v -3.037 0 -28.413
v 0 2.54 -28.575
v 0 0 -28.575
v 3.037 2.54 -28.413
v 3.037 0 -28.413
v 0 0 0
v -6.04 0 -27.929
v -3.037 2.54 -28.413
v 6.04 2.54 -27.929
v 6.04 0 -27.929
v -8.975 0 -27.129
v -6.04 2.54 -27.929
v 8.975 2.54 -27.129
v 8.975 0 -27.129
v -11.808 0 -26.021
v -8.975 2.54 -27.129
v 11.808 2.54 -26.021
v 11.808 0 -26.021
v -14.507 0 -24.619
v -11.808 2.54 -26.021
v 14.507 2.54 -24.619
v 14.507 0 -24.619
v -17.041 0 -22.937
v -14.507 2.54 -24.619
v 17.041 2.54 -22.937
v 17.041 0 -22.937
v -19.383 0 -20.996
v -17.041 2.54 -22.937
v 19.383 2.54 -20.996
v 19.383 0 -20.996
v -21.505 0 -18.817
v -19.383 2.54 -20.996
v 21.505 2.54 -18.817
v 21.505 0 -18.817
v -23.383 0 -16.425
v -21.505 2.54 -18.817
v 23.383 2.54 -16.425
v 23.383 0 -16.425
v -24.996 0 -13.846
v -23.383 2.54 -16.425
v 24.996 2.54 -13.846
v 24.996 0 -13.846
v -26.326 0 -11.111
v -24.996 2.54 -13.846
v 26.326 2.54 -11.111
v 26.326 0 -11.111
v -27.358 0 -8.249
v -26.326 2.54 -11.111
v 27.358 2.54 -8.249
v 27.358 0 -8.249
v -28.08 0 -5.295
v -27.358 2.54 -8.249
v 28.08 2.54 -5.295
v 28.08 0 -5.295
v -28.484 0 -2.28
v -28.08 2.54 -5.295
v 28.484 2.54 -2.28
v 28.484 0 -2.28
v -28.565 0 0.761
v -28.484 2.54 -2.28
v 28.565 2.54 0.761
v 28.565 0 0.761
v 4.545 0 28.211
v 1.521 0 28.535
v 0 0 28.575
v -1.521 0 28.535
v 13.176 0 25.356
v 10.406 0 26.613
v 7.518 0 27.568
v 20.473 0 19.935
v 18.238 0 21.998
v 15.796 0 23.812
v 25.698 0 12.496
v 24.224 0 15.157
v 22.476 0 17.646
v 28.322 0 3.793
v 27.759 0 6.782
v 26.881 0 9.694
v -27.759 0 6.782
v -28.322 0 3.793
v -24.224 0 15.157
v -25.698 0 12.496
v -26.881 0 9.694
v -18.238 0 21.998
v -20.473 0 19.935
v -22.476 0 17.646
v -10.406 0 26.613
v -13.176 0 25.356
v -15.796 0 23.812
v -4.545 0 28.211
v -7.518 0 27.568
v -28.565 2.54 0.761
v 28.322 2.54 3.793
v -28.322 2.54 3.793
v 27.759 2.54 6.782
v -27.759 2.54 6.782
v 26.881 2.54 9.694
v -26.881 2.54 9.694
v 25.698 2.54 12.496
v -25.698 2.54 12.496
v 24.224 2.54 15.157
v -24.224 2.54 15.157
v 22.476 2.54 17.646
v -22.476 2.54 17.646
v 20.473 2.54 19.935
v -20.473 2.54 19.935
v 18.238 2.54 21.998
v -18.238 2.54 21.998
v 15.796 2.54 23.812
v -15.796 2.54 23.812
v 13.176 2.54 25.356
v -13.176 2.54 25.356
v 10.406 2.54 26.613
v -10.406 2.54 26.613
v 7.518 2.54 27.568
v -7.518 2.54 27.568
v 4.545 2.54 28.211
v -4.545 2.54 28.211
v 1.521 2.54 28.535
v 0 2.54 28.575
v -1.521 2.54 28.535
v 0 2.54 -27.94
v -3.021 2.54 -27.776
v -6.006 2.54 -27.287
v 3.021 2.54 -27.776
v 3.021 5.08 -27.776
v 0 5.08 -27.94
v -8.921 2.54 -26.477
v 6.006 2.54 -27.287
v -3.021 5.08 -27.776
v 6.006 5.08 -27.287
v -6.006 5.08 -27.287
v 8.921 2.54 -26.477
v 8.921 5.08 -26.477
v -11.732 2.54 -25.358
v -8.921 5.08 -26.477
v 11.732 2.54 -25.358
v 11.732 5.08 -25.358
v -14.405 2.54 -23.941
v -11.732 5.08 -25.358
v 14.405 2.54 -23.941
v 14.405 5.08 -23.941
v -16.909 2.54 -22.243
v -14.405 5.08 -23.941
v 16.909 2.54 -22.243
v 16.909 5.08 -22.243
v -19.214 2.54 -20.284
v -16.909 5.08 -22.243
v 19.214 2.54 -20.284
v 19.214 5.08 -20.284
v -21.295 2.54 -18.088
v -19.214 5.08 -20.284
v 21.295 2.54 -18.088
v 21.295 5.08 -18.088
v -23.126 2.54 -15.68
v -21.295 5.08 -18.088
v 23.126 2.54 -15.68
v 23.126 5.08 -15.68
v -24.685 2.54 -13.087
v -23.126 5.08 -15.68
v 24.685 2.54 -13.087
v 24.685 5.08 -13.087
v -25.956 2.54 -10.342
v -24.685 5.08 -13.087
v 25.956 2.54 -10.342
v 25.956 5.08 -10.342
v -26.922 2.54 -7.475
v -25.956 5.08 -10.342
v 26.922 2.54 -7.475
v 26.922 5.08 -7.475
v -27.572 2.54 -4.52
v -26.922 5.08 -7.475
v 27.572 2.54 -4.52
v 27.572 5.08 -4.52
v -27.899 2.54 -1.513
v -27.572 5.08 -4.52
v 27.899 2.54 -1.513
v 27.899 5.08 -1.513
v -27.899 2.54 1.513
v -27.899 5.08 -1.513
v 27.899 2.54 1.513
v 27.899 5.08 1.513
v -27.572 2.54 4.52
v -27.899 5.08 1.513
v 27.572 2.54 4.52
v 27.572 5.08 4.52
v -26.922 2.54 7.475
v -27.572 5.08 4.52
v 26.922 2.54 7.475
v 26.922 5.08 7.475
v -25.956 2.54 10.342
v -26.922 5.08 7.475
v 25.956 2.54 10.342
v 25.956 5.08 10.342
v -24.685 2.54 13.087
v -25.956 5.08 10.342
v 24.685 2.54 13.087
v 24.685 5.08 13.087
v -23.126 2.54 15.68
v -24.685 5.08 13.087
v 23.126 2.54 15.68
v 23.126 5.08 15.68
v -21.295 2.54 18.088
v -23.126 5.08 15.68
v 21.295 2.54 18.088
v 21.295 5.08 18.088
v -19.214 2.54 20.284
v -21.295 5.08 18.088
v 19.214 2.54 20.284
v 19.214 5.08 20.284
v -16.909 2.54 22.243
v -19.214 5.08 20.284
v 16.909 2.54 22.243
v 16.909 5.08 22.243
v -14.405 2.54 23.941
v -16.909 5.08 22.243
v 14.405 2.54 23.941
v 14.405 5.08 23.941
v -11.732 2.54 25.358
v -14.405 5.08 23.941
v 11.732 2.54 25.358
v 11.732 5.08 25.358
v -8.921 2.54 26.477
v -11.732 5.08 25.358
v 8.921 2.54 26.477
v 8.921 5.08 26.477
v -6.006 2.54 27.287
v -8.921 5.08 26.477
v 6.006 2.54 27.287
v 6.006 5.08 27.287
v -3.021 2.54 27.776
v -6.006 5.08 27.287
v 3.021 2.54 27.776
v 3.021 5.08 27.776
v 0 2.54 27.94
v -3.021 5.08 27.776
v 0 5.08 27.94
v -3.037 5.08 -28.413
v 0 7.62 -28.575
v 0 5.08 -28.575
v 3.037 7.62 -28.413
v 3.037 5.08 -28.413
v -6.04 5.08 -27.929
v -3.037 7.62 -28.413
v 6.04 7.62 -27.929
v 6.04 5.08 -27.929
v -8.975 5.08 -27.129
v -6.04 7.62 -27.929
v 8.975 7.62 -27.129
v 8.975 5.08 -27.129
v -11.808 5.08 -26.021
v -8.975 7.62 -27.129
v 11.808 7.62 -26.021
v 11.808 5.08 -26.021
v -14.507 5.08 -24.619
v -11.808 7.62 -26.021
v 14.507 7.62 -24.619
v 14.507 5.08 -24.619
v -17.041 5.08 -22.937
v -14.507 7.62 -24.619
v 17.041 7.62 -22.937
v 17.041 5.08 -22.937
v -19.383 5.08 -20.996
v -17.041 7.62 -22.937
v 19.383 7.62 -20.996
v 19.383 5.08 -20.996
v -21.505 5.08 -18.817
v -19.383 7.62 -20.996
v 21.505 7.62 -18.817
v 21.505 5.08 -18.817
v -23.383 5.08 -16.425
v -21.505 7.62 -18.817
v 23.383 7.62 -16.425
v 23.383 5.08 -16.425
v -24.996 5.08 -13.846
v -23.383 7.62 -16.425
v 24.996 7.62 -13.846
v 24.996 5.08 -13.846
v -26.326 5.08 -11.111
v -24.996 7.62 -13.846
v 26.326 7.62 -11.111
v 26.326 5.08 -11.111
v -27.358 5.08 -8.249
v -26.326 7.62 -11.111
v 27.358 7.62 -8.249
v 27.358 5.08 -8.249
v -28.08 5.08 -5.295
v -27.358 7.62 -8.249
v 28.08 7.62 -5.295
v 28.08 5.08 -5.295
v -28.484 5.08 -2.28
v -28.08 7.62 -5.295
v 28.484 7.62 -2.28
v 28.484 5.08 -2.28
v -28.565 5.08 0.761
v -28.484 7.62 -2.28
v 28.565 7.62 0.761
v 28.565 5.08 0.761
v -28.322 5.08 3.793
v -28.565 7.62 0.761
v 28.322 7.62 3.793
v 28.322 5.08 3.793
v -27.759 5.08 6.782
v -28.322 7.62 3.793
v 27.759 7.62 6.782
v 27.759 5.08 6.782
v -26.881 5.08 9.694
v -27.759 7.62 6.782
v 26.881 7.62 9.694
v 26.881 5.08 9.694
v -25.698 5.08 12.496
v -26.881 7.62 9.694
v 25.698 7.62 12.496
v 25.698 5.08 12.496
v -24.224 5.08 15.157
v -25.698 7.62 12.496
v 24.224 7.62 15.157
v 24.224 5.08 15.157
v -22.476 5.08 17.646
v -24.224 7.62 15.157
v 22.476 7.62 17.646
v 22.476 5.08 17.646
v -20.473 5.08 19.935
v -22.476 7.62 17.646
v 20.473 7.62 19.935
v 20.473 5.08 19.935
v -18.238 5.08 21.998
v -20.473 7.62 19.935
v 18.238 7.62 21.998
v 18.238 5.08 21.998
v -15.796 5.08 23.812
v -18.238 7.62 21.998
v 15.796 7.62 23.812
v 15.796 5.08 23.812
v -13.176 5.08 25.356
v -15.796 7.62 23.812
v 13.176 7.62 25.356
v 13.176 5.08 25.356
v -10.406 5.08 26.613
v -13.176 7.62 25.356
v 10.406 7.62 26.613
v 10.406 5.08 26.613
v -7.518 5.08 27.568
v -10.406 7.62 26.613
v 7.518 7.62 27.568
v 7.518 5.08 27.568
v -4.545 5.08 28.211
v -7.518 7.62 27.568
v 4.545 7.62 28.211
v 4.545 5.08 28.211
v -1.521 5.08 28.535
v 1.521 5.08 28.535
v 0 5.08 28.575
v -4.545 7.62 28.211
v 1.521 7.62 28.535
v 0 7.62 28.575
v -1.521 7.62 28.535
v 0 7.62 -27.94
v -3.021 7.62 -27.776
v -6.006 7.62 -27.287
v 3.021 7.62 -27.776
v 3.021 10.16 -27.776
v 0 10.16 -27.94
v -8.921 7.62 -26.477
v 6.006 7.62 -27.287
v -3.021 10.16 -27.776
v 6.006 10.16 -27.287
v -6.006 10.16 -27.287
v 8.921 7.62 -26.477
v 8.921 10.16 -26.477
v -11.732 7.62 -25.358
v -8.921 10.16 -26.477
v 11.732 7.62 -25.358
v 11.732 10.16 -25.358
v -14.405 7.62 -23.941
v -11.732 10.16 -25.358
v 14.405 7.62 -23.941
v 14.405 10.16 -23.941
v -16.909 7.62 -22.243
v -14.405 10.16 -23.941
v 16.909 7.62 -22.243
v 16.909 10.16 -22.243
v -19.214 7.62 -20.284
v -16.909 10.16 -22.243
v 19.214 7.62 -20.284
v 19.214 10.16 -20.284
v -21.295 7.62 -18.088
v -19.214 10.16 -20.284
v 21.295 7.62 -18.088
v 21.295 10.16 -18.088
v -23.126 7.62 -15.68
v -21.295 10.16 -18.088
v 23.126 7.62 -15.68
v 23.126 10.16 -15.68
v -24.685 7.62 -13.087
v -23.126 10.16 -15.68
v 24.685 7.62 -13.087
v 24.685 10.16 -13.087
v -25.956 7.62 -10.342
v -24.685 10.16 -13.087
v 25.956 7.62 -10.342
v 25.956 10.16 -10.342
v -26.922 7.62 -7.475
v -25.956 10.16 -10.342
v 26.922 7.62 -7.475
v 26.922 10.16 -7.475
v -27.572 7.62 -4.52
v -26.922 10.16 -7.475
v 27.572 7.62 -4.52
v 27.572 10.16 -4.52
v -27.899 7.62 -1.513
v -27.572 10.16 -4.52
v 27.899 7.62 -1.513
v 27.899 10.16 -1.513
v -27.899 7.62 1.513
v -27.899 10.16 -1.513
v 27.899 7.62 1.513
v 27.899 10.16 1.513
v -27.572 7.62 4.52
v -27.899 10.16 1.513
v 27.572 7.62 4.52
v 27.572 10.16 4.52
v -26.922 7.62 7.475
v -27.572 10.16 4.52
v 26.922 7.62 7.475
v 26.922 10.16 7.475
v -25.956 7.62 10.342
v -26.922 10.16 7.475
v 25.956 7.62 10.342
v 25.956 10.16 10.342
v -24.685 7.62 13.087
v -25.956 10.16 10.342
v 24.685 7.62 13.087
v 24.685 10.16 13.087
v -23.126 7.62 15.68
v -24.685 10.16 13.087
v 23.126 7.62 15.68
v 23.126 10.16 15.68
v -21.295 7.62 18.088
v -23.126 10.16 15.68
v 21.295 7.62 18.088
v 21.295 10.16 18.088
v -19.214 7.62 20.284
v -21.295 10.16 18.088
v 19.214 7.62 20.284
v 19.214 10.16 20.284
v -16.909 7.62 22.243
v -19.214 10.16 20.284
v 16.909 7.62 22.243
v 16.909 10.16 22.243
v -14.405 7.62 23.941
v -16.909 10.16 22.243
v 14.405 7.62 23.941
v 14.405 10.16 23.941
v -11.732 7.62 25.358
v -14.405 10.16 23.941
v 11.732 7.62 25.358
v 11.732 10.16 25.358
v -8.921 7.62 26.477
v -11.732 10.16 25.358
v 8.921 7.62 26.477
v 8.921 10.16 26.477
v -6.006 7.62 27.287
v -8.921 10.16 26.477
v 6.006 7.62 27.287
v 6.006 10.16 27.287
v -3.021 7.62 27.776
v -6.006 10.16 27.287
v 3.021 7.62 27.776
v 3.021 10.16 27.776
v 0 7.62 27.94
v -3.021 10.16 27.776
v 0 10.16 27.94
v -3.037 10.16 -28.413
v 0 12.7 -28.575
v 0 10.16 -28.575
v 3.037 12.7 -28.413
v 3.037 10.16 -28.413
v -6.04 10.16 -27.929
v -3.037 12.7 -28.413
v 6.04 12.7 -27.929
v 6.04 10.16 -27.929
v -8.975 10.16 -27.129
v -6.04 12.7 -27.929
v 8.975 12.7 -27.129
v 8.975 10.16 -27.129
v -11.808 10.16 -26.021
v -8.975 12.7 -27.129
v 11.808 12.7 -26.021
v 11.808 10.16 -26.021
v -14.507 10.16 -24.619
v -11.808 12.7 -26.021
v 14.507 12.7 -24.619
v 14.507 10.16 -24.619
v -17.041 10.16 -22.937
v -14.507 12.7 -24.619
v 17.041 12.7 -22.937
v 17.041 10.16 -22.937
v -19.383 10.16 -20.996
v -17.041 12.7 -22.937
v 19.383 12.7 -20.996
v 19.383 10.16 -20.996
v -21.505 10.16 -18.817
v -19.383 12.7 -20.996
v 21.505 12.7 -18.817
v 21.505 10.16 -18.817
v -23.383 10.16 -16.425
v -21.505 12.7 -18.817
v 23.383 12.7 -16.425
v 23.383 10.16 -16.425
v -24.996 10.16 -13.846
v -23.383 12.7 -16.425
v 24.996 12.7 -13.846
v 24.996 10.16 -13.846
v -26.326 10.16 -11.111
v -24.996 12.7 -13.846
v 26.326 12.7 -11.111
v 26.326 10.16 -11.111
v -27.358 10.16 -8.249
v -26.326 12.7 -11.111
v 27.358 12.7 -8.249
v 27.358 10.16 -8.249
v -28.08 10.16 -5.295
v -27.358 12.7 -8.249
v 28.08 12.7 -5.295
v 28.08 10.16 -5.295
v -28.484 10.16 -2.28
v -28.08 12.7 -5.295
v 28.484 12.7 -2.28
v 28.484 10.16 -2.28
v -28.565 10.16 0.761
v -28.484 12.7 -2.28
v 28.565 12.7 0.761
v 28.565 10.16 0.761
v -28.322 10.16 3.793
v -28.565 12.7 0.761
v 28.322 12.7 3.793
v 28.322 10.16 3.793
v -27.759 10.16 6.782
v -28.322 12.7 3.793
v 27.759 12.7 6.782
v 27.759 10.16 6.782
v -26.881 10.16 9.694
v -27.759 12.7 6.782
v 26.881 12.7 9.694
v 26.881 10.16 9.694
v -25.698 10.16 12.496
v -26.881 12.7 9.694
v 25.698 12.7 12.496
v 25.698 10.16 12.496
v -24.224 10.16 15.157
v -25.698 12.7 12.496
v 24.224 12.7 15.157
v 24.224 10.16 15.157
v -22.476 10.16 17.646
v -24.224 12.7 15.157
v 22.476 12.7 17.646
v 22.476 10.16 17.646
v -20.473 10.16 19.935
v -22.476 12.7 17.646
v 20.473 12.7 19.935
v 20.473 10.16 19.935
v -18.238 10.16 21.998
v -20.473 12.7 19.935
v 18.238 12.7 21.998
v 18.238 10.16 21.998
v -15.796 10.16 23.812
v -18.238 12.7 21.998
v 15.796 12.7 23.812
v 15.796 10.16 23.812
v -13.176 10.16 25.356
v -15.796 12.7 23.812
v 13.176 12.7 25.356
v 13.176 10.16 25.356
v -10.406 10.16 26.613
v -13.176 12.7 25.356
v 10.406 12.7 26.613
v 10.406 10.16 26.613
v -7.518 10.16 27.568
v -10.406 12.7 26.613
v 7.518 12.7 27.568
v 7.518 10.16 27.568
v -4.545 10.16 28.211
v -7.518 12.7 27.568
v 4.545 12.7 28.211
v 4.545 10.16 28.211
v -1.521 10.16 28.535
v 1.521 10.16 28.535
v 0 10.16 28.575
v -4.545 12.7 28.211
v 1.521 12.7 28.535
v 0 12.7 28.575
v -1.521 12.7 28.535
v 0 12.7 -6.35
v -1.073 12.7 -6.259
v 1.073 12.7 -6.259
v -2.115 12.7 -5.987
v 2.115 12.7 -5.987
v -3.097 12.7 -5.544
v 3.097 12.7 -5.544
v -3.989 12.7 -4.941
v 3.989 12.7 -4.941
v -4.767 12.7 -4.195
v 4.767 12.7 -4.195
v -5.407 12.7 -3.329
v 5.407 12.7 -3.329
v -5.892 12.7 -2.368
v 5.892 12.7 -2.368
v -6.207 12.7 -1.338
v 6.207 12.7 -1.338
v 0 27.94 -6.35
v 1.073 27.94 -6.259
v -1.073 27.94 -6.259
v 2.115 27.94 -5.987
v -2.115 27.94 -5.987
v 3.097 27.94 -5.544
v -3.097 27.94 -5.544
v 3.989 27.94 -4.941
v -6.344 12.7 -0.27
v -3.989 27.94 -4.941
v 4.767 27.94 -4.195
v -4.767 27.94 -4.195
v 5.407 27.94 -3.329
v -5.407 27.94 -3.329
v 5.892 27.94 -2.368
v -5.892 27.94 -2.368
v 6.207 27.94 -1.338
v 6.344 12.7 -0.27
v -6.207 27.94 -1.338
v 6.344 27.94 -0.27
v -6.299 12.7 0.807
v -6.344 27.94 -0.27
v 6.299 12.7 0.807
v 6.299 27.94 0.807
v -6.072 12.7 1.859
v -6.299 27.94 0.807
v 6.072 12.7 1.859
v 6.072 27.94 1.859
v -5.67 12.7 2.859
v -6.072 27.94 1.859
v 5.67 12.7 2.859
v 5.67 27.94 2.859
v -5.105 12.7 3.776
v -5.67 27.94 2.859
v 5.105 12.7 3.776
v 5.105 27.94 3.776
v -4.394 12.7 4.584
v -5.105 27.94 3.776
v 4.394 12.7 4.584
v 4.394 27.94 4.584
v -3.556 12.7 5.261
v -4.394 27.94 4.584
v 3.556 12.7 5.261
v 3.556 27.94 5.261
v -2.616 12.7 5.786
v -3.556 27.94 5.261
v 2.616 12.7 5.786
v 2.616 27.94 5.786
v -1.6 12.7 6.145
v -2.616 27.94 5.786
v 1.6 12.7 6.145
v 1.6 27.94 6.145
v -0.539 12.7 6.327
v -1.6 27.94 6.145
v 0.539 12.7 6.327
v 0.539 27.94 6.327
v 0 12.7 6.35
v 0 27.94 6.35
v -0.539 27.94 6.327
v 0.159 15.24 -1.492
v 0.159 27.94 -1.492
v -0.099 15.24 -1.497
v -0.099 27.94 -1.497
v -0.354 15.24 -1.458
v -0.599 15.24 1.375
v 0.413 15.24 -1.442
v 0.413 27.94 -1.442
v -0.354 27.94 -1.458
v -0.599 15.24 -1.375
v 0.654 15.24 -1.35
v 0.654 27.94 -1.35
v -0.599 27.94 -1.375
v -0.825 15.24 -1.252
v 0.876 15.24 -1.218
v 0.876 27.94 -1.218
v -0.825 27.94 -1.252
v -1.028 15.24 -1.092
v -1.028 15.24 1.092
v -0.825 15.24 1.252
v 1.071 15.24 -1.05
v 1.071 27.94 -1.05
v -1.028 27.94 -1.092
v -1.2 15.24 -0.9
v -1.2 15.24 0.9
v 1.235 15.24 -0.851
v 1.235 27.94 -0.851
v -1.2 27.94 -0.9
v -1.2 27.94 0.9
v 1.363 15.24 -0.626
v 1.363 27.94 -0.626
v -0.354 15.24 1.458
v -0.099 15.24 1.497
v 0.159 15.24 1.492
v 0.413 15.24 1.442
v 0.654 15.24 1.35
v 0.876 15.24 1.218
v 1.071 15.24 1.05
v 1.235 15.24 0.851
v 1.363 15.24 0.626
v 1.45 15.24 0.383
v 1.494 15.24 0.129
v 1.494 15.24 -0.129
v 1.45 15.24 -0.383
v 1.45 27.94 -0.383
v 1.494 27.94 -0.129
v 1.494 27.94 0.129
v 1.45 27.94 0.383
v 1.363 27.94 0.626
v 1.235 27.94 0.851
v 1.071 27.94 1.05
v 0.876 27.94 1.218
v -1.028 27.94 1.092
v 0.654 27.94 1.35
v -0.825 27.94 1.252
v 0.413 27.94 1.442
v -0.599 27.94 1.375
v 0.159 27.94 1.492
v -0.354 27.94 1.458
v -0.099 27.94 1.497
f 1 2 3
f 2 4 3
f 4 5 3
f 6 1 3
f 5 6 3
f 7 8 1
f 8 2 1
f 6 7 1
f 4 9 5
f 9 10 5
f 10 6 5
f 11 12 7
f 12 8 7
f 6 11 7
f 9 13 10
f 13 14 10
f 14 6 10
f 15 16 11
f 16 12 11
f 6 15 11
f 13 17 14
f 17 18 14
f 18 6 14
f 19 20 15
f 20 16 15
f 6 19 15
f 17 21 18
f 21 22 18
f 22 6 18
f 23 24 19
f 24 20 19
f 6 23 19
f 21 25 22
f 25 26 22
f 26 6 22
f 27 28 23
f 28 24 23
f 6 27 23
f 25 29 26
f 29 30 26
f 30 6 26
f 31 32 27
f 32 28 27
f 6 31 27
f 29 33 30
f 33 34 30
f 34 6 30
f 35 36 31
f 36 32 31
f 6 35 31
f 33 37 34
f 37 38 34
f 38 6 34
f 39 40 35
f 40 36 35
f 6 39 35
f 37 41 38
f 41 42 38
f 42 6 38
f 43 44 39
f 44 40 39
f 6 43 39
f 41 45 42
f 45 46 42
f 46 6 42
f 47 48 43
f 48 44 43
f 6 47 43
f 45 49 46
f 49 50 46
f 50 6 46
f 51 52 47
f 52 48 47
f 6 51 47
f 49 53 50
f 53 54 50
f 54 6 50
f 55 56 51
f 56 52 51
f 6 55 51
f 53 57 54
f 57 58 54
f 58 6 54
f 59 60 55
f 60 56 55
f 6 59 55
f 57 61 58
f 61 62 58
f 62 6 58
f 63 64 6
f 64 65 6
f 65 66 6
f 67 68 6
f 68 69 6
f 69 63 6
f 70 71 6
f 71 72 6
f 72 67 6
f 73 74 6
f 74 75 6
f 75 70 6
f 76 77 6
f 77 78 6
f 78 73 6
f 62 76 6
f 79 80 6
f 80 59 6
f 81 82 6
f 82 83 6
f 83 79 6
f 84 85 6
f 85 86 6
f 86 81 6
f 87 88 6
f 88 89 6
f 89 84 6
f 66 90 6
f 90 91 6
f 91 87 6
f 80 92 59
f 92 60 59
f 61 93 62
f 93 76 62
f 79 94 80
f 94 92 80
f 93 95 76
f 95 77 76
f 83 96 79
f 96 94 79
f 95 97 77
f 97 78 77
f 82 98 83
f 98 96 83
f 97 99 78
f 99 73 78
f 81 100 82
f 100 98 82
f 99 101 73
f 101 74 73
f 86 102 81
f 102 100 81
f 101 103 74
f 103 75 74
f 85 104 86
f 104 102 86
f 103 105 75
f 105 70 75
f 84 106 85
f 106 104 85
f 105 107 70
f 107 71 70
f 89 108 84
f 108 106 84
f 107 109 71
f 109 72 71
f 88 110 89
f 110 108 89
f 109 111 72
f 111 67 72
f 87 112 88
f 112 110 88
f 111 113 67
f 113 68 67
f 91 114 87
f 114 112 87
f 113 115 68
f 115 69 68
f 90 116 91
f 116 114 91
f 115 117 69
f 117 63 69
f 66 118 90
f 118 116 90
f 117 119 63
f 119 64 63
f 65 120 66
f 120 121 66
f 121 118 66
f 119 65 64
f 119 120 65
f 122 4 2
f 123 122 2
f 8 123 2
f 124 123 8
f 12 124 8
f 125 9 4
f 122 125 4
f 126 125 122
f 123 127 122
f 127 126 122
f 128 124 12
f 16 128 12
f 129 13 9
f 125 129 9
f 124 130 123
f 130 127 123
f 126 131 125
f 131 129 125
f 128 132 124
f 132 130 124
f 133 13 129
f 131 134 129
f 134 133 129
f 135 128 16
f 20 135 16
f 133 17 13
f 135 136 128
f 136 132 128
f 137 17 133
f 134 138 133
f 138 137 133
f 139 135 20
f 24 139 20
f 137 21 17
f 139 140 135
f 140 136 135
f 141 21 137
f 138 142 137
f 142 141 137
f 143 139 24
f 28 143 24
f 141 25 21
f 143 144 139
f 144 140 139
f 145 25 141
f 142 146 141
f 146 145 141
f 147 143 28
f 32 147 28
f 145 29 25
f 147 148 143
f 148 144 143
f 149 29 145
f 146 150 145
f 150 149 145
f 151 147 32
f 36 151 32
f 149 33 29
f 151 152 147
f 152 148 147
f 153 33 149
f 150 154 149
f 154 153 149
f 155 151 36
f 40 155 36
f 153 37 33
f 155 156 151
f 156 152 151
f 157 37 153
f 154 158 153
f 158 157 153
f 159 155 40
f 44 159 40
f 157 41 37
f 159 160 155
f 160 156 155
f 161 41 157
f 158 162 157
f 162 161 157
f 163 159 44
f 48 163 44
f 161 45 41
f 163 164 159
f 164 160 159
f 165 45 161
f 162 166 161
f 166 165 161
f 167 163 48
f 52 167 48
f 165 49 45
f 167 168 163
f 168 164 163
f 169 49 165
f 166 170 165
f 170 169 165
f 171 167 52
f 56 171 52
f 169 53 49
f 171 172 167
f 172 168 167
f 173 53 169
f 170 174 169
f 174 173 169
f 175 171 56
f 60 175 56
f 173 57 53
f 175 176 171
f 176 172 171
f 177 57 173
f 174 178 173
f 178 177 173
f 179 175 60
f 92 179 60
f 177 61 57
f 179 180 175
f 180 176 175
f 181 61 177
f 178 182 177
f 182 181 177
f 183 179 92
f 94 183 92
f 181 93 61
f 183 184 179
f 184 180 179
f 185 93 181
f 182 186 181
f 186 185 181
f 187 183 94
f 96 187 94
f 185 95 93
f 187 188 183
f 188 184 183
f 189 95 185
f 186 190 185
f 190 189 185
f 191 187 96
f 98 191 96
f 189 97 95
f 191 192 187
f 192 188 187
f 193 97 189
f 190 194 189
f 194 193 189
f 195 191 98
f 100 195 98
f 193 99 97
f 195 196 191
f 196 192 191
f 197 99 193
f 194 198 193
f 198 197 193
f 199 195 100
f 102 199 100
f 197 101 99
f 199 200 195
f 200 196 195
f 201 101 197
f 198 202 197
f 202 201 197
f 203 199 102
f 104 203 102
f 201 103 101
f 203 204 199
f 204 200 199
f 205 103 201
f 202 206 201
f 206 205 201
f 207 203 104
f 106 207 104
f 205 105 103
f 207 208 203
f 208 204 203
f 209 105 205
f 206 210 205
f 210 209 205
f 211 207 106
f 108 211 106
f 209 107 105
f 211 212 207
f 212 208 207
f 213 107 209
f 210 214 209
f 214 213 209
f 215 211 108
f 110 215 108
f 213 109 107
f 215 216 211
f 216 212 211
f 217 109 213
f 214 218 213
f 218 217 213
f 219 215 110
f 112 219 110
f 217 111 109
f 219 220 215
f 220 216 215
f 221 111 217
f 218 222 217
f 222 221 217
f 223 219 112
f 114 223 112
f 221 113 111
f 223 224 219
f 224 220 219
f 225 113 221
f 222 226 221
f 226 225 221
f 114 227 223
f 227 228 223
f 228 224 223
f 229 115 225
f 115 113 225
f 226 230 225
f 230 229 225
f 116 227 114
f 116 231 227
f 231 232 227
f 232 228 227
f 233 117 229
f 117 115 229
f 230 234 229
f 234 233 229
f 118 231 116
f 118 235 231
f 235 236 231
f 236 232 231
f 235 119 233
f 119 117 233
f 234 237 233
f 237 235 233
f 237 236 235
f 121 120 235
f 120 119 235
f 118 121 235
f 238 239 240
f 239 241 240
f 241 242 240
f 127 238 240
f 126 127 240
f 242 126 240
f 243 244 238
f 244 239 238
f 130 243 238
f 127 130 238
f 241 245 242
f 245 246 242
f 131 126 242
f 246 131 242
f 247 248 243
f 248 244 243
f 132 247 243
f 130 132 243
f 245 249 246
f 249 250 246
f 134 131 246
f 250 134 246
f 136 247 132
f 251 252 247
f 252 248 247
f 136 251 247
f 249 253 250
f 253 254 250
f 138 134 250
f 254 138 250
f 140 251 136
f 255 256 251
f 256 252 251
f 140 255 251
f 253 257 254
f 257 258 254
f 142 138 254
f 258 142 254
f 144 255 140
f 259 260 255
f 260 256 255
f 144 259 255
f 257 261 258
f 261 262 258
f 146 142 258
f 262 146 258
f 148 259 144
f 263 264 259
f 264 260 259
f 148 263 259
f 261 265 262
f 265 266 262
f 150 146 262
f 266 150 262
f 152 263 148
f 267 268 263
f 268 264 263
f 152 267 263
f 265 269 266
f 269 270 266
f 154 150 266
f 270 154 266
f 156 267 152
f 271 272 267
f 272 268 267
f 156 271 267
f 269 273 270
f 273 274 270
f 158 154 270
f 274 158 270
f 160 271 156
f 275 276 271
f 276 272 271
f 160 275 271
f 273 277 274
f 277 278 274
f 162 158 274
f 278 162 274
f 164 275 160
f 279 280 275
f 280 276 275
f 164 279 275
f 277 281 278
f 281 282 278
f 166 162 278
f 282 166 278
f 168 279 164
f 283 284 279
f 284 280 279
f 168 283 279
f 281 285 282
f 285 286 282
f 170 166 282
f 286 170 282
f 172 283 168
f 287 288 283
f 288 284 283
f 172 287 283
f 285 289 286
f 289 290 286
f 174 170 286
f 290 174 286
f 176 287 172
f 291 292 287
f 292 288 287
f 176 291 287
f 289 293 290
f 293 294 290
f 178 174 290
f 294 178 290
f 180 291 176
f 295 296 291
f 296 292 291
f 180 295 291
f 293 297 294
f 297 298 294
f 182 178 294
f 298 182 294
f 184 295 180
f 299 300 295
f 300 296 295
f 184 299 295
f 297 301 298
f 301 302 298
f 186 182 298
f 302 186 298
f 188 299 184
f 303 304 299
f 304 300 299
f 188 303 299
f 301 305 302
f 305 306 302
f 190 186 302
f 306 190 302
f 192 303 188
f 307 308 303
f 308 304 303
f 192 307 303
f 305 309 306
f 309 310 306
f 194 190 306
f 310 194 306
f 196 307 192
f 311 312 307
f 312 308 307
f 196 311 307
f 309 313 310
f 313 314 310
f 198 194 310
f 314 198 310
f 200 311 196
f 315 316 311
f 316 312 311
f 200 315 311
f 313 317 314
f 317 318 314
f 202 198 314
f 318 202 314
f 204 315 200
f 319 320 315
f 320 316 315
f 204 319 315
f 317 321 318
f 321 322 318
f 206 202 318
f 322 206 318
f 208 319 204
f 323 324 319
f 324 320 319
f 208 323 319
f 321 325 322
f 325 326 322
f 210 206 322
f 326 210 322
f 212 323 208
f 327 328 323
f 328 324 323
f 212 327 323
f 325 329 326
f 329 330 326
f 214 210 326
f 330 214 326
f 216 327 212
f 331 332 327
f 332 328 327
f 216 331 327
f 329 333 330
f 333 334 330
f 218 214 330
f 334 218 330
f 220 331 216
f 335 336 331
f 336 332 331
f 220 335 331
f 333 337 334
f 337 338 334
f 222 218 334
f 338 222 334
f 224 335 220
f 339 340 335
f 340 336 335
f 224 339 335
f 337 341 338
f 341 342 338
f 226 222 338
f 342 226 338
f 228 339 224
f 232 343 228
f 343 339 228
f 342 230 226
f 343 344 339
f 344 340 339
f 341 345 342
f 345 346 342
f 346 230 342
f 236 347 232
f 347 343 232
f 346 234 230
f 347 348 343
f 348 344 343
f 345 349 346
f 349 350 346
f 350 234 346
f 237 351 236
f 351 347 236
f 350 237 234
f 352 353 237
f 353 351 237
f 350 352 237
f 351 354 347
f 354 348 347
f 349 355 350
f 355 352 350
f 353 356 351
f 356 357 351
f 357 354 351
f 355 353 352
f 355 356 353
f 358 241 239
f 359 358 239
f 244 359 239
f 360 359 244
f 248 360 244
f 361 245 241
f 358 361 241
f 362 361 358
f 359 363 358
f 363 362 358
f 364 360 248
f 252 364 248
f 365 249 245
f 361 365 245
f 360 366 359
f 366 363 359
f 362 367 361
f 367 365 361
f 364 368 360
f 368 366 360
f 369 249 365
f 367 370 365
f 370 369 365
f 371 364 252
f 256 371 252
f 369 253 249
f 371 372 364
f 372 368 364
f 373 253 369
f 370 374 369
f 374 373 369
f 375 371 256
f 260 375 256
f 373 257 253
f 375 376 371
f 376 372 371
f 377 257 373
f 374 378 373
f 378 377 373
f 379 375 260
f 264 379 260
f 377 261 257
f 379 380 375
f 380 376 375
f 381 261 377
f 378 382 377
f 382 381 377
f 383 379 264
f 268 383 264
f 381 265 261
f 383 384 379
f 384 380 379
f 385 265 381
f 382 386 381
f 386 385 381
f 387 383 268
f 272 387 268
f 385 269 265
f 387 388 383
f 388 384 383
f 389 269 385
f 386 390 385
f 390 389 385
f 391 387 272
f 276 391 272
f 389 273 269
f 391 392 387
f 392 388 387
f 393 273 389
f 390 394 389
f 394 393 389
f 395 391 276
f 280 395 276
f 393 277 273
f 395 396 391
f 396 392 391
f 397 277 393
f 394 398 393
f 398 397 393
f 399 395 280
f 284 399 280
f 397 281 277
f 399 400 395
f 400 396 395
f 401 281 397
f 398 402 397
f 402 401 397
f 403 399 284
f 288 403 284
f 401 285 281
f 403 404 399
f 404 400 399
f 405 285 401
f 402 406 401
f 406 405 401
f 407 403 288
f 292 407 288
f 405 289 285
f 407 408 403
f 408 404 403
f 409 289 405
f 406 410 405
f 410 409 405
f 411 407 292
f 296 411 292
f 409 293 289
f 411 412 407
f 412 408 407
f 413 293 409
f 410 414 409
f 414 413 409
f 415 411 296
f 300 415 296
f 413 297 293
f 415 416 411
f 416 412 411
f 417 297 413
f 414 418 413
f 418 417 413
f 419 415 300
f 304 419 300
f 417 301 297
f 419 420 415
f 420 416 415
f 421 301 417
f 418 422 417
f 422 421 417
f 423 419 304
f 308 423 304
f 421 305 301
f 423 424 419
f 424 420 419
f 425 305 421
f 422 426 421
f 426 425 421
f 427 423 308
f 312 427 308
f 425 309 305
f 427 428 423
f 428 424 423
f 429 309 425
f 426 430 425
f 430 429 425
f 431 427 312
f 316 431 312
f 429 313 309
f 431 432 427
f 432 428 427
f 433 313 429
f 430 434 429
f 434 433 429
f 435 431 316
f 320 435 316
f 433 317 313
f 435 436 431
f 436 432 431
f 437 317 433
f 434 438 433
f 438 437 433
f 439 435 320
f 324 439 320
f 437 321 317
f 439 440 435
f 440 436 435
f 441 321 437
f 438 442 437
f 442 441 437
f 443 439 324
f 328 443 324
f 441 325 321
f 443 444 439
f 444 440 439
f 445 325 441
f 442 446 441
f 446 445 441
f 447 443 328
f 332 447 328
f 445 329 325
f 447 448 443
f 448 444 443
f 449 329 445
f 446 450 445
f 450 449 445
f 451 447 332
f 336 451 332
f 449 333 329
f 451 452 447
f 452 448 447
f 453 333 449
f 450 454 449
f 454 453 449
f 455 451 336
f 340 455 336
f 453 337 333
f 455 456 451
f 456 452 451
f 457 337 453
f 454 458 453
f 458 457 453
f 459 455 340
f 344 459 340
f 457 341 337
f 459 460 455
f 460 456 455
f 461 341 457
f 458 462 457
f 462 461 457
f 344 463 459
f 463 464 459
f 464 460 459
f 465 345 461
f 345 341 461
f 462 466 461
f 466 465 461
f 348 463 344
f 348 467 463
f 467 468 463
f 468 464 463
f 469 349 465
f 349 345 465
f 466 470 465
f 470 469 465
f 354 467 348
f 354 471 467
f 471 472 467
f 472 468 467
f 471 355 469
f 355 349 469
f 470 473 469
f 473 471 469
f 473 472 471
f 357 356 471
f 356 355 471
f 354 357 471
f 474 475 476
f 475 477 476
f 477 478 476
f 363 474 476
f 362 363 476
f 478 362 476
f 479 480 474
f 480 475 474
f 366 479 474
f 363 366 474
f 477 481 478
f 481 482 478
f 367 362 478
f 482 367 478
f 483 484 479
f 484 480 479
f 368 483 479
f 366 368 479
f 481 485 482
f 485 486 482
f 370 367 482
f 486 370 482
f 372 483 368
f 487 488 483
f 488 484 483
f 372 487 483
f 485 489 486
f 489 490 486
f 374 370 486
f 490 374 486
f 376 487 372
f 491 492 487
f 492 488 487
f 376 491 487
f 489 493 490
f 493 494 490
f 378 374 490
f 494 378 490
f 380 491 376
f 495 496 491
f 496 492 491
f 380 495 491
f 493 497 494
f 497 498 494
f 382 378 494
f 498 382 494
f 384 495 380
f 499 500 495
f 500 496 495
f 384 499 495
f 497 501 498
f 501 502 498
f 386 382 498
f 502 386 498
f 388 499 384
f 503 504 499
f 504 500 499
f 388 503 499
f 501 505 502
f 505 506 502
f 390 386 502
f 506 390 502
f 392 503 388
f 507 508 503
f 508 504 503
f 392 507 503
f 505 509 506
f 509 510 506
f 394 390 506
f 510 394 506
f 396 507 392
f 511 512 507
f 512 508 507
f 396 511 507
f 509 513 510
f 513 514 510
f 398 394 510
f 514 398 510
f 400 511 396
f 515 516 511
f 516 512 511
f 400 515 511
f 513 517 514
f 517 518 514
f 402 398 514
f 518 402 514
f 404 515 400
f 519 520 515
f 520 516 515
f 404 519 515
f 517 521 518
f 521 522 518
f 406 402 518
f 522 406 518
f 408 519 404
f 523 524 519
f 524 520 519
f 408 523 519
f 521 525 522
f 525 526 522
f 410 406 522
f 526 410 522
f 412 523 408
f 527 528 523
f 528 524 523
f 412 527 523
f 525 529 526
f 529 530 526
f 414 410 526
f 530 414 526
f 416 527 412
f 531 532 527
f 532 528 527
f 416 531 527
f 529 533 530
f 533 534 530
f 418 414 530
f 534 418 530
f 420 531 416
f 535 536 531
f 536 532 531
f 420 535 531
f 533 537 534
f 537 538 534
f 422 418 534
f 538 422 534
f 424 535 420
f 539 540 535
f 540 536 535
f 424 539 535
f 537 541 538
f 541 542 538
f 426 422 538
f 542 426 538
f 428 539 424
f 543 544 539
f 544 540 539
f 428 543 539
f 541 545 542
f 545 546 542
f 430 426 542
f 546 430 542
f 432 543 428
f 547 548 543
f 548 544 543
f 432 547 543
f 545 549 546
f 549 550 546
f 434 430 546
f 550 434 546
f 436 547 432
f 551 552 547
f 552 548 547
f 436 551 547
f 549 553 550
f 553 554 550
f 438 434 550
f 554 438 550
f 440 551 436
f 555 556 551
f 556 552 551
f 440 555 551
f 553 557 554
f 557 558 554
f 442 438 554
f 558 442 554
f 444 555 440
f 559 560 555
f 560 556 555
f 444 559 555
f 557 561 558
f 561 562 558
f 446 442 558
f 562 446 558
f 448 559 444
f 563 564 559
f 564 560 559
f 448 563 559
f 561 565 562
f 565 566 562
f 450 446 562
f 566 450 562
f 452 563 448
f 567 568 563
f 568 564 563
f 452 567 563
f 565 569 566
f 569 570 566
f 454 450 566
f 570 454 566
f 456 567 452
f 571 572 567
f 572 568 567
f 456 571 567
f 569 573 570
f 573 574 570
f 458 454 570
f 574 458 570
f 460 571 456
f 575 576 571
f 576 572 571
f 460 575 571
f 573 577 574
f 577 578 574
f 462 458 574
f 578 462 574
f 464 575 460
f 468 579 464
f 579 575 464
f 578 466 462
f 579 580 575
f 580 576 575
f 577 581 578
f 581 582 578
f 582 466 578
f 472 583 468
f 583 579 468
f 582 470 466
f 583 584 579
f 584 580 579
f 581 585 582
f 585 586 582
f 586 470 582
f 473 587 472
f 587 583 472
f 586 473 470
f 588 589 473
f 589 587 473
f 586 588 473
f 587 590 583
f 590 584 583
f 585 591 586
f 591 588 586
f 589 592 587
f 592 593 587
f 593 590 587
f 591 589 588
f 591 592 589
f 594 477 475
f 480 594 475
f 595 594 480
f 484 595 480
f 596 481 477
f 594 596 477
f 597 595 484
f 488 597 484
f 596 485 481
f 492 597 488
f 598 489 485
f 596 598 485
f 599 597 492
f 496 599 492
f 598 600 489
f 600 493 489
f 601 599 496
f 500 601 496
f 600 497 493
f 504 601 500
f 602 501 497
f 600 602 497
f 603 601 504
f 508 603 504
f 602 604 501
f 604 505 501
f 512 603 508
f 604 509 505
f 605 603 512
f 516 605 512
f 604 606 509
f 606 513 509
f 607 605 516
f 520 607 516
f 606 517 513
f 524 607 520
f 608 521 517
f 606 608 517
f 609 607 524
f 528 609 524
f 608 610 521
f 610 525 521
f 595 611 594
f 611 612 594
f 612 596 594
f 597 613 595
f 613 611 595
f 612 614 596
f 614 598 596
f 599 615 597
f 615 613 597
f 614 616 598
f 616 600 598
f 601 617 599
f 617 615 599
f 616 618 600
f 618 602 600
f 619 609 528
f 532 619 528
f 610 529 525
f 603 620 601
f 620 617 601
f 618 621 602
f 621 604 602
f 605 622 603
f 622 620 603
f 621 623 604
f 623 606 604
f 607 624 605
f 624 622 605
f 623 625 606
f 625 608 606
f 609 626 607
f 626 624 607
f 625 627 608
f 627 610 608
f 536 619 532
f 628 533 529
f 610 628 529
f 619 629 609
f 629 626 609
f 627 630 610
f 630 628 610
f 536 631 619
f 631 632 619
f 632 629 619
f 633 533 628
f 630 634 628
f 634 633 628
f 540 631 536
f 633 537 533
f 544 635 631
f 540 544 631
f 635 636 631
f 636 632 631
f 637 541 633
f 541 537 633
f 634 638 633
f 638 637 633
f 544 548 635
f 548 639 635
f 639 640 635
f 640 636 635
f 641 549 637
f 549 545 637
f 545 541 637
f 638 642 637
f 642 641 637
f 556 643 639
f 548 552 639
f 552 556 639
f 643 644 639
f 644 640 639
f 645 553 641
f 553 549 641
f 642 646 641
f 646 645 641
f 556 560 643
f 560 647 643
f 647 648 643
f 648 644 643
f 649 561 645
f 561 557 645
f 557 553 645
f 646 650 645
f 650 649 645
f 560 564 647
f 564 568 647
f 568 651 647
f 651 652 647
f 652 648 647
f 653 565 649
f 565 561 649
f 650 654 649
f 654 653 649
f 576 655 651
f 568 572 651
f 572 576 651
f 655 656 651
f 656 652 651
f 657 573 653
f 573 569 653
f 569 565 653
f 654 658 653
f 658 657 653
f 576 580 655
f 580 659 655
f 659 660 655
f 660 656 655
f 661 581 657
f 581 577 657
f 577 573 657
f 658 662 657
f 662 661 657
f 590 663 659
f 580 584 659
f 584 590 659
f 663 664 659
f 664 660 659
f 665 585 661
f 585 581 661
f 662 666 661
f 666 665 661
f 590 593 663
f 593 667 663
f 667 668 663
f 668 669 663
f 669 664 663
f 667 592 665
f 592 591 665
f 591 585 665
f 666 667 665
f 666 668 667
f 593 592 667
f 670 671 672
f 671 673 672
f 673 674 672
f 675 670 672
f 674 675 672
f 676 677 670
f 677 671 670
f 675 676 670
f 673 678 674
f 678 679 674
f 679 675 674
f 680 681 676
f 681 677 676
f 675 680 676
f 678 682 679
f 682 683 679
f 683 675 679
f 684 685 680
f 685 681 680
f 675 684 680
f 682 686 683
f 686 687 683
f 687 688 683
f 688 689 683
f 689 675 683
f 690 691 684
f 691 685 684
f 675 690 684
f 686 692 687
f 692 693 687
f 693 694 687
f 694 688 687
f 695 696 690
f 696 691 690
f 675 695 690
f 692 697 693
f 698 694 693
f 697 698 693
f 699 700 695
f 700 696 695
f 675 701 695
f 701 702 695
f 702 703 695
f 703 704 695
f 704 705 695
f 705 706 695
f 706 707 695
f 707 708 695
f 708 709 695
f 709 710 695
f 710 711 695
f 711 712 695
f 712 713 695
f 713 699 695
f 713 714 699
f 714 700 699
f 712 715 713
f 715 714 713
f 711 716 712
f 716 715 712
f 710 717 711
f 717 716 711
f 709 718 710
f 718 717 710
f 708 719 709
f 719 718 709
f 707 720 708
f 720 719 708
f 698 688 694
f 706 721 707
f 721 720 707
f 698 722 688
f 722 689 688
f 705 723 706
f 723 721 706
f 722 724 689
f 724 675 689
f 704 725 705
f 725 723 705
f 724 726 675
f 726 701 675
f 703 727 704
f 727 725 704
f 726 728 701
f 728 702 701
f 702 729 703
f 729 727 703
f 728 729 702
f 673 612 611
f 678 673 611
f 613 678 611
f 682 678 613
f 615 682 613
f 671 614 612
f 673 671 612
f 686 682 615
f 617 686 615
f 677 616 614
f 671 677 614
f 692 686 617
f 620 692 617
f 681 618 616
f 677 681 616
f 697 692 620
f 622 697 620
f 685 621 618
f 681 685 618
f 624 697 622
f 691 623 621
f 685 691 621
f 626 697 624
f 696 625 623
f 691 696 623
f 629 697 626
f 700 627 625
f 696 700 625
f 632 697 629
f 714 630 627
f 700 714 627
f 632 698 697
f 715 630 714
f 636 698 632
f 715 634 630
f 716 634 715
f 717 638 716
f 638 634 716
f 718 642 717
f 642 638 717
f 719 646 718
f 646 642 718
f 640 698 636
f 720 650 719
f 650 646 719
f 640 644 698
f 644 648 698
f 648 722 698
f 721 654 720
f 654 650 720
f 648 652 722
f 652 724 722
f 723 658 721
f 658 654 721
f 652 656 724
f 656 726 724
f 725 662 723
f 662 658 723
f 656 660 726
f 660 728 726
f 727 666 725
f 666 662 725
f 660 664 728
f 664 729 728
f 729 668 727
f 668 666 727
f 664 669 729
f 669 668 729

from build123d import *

# Parameters (mm, degrees)
SKETCH1_R           = 28.575
BOSS_EXTRUDE1_DEPTH = 2.54
SKETCH2_R           = 27.94
BOSS_EXTRUDE2_DEPTH = 2.54
SKETCH3_R           = 28.575
BOSS_EXTRUDE3_DEPTH = 2.54
SKETCH4_R           = 27.94
BOSS_EXTRUDE4_DEPTH = 2.54
SKETCH5_R           = 28.575
BOSS_EXTRUDE5_DEPTH = 2.54
SKETCH6_R           = 6.35
BOSS_EXTRUDE6_DEPTH = 15.24
CUT_EXTRUDE1_DEPTH  = 12.7


with BuildPart() as part:
    # Sketch1 → Boss-Extrude1 (new body)
    with BuildSketch(Plane(origin=(0, 0, 0), x_dir=(1, 0, 0), z_dir=(0, 1, 0))):
        with Locations(Location((0, 0, 0), (0, 0, 270))):
            Circle(SKETCH1_R)
    extrude(amount=BOSS_EXTRUDE1_DEPTH)

    # Sketch2 → Boss-Extrude2 (add)
    with BuildSketch(Plane(origin=(0, 2.54, 0), x_dir=(1, 0, 0), z_dir=(0, 1, 0))):
        with Locations(Location((0, 0, 0), (0, 0, 270))):
            Circle(SKETCH2_R)
    extrude(amount=BOSS_EXTRUDE2_DEPTH)

    # Sketch3 → Boss-Extrude3 (add)
    with BuildSketch(Plane(origin=(0, 5.08, 0), x_dir=(1, 0, 0), z_dir=(0, 1, 0))):
        with Locations(Location((0, 0, 0), (0, 0, 270))):
            Circle(SKETCH3_R)
    extrude(amount=BOSS_EXTRUDE3_DEPTH)

    # Sketch4 → Boss-Extrude4 (add)
    with BuildSketch(Plane(origin=(0, 7.62, 0), x_dir=(1, 0, 0), z_dir=(0, 1, 0))):
        with Locations(Location((0, 0, 0), (0, 0, 270))):
            Circle(SKETCH4_R)
    extrude(amount=BOSS_EXTRUDE4_DEPTH)

    # Sketch5 → Boss-Extrude5 (add)
    with BuildSketch(Plane(origin=(0, 10.16, 0), x_dir=(1, 0, 0), z_dir=(0, 1, 0))):
        with Locations(Location((0, 0, 0), (0, 0, 270))):
            Circle(SKETCH5_R)
    extrude(amount=BOSS_EXTRUDE5_DEPTH)

    # Sketch6 → Boss-Extrude6 (add)
    with BuildSketch(Plane(origin=(0, 12.7, 0), x_dir=(1, 0, 0), z_dir=(0, 1, 0))):
        with Locations(Location((0, 0, 0), (0, 0, 90))):
            Circle(SKETCH6_R)
    extrude(amount=BOSS_EXTRUDE6_DEPTH)

    # Sketch7 → Cut-Extrude1 (cut)
    with BuildSketch(Plane(origin=(0, 27.94, 0), x_dir=(1, 0, 0), z_dir=(0, 1, 0))):
        with BuildLine():
            Line((-1.200000076, 0.899999978), (-1.200000076, -0.899999978))
            ThreePointArc((-1.200000076, -0.899999978), (1.500000048, 0), (-1.200000076, 0.899999978))
        make_face()
    extrude(amount=-CUT_EXTRUDE1_DEPTH, mode=Mode.SUBTRACT)


solid = part.part
